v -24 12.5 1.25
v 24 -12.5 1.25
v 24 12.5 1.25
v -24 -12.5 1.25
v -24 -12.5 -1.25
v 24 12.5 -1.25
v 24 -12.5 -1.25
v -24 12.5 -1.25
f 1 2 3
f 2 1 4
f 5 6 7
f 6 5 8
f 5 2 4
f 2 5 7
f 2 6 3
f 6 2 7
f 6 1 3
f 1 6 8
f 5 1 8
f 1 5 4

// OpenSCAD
// Define dimensions for the rectangular block
block_length = 48;  // Adjusted length to match the original model
block_width = 25;   // Width of the block remains the same
block_thickness = 2.5; // Reduced thickness to match the original model

// Generate the rectangular block with sharp edges
module rectangular_block() {
    cube([block_length, block_width, block_thickness], center = true);
}

// Smoothen the surface and ensure flatness
module smooth_block() {
    rectangular_block();
}

// Assemble the model with corrected orientation and position
translate([0, 0, 0]) // Ensure the block lies flat and parallel to the base
rotate([0, 0, 0])    // Corrected orientation to remove any tilt
smooth_block();
